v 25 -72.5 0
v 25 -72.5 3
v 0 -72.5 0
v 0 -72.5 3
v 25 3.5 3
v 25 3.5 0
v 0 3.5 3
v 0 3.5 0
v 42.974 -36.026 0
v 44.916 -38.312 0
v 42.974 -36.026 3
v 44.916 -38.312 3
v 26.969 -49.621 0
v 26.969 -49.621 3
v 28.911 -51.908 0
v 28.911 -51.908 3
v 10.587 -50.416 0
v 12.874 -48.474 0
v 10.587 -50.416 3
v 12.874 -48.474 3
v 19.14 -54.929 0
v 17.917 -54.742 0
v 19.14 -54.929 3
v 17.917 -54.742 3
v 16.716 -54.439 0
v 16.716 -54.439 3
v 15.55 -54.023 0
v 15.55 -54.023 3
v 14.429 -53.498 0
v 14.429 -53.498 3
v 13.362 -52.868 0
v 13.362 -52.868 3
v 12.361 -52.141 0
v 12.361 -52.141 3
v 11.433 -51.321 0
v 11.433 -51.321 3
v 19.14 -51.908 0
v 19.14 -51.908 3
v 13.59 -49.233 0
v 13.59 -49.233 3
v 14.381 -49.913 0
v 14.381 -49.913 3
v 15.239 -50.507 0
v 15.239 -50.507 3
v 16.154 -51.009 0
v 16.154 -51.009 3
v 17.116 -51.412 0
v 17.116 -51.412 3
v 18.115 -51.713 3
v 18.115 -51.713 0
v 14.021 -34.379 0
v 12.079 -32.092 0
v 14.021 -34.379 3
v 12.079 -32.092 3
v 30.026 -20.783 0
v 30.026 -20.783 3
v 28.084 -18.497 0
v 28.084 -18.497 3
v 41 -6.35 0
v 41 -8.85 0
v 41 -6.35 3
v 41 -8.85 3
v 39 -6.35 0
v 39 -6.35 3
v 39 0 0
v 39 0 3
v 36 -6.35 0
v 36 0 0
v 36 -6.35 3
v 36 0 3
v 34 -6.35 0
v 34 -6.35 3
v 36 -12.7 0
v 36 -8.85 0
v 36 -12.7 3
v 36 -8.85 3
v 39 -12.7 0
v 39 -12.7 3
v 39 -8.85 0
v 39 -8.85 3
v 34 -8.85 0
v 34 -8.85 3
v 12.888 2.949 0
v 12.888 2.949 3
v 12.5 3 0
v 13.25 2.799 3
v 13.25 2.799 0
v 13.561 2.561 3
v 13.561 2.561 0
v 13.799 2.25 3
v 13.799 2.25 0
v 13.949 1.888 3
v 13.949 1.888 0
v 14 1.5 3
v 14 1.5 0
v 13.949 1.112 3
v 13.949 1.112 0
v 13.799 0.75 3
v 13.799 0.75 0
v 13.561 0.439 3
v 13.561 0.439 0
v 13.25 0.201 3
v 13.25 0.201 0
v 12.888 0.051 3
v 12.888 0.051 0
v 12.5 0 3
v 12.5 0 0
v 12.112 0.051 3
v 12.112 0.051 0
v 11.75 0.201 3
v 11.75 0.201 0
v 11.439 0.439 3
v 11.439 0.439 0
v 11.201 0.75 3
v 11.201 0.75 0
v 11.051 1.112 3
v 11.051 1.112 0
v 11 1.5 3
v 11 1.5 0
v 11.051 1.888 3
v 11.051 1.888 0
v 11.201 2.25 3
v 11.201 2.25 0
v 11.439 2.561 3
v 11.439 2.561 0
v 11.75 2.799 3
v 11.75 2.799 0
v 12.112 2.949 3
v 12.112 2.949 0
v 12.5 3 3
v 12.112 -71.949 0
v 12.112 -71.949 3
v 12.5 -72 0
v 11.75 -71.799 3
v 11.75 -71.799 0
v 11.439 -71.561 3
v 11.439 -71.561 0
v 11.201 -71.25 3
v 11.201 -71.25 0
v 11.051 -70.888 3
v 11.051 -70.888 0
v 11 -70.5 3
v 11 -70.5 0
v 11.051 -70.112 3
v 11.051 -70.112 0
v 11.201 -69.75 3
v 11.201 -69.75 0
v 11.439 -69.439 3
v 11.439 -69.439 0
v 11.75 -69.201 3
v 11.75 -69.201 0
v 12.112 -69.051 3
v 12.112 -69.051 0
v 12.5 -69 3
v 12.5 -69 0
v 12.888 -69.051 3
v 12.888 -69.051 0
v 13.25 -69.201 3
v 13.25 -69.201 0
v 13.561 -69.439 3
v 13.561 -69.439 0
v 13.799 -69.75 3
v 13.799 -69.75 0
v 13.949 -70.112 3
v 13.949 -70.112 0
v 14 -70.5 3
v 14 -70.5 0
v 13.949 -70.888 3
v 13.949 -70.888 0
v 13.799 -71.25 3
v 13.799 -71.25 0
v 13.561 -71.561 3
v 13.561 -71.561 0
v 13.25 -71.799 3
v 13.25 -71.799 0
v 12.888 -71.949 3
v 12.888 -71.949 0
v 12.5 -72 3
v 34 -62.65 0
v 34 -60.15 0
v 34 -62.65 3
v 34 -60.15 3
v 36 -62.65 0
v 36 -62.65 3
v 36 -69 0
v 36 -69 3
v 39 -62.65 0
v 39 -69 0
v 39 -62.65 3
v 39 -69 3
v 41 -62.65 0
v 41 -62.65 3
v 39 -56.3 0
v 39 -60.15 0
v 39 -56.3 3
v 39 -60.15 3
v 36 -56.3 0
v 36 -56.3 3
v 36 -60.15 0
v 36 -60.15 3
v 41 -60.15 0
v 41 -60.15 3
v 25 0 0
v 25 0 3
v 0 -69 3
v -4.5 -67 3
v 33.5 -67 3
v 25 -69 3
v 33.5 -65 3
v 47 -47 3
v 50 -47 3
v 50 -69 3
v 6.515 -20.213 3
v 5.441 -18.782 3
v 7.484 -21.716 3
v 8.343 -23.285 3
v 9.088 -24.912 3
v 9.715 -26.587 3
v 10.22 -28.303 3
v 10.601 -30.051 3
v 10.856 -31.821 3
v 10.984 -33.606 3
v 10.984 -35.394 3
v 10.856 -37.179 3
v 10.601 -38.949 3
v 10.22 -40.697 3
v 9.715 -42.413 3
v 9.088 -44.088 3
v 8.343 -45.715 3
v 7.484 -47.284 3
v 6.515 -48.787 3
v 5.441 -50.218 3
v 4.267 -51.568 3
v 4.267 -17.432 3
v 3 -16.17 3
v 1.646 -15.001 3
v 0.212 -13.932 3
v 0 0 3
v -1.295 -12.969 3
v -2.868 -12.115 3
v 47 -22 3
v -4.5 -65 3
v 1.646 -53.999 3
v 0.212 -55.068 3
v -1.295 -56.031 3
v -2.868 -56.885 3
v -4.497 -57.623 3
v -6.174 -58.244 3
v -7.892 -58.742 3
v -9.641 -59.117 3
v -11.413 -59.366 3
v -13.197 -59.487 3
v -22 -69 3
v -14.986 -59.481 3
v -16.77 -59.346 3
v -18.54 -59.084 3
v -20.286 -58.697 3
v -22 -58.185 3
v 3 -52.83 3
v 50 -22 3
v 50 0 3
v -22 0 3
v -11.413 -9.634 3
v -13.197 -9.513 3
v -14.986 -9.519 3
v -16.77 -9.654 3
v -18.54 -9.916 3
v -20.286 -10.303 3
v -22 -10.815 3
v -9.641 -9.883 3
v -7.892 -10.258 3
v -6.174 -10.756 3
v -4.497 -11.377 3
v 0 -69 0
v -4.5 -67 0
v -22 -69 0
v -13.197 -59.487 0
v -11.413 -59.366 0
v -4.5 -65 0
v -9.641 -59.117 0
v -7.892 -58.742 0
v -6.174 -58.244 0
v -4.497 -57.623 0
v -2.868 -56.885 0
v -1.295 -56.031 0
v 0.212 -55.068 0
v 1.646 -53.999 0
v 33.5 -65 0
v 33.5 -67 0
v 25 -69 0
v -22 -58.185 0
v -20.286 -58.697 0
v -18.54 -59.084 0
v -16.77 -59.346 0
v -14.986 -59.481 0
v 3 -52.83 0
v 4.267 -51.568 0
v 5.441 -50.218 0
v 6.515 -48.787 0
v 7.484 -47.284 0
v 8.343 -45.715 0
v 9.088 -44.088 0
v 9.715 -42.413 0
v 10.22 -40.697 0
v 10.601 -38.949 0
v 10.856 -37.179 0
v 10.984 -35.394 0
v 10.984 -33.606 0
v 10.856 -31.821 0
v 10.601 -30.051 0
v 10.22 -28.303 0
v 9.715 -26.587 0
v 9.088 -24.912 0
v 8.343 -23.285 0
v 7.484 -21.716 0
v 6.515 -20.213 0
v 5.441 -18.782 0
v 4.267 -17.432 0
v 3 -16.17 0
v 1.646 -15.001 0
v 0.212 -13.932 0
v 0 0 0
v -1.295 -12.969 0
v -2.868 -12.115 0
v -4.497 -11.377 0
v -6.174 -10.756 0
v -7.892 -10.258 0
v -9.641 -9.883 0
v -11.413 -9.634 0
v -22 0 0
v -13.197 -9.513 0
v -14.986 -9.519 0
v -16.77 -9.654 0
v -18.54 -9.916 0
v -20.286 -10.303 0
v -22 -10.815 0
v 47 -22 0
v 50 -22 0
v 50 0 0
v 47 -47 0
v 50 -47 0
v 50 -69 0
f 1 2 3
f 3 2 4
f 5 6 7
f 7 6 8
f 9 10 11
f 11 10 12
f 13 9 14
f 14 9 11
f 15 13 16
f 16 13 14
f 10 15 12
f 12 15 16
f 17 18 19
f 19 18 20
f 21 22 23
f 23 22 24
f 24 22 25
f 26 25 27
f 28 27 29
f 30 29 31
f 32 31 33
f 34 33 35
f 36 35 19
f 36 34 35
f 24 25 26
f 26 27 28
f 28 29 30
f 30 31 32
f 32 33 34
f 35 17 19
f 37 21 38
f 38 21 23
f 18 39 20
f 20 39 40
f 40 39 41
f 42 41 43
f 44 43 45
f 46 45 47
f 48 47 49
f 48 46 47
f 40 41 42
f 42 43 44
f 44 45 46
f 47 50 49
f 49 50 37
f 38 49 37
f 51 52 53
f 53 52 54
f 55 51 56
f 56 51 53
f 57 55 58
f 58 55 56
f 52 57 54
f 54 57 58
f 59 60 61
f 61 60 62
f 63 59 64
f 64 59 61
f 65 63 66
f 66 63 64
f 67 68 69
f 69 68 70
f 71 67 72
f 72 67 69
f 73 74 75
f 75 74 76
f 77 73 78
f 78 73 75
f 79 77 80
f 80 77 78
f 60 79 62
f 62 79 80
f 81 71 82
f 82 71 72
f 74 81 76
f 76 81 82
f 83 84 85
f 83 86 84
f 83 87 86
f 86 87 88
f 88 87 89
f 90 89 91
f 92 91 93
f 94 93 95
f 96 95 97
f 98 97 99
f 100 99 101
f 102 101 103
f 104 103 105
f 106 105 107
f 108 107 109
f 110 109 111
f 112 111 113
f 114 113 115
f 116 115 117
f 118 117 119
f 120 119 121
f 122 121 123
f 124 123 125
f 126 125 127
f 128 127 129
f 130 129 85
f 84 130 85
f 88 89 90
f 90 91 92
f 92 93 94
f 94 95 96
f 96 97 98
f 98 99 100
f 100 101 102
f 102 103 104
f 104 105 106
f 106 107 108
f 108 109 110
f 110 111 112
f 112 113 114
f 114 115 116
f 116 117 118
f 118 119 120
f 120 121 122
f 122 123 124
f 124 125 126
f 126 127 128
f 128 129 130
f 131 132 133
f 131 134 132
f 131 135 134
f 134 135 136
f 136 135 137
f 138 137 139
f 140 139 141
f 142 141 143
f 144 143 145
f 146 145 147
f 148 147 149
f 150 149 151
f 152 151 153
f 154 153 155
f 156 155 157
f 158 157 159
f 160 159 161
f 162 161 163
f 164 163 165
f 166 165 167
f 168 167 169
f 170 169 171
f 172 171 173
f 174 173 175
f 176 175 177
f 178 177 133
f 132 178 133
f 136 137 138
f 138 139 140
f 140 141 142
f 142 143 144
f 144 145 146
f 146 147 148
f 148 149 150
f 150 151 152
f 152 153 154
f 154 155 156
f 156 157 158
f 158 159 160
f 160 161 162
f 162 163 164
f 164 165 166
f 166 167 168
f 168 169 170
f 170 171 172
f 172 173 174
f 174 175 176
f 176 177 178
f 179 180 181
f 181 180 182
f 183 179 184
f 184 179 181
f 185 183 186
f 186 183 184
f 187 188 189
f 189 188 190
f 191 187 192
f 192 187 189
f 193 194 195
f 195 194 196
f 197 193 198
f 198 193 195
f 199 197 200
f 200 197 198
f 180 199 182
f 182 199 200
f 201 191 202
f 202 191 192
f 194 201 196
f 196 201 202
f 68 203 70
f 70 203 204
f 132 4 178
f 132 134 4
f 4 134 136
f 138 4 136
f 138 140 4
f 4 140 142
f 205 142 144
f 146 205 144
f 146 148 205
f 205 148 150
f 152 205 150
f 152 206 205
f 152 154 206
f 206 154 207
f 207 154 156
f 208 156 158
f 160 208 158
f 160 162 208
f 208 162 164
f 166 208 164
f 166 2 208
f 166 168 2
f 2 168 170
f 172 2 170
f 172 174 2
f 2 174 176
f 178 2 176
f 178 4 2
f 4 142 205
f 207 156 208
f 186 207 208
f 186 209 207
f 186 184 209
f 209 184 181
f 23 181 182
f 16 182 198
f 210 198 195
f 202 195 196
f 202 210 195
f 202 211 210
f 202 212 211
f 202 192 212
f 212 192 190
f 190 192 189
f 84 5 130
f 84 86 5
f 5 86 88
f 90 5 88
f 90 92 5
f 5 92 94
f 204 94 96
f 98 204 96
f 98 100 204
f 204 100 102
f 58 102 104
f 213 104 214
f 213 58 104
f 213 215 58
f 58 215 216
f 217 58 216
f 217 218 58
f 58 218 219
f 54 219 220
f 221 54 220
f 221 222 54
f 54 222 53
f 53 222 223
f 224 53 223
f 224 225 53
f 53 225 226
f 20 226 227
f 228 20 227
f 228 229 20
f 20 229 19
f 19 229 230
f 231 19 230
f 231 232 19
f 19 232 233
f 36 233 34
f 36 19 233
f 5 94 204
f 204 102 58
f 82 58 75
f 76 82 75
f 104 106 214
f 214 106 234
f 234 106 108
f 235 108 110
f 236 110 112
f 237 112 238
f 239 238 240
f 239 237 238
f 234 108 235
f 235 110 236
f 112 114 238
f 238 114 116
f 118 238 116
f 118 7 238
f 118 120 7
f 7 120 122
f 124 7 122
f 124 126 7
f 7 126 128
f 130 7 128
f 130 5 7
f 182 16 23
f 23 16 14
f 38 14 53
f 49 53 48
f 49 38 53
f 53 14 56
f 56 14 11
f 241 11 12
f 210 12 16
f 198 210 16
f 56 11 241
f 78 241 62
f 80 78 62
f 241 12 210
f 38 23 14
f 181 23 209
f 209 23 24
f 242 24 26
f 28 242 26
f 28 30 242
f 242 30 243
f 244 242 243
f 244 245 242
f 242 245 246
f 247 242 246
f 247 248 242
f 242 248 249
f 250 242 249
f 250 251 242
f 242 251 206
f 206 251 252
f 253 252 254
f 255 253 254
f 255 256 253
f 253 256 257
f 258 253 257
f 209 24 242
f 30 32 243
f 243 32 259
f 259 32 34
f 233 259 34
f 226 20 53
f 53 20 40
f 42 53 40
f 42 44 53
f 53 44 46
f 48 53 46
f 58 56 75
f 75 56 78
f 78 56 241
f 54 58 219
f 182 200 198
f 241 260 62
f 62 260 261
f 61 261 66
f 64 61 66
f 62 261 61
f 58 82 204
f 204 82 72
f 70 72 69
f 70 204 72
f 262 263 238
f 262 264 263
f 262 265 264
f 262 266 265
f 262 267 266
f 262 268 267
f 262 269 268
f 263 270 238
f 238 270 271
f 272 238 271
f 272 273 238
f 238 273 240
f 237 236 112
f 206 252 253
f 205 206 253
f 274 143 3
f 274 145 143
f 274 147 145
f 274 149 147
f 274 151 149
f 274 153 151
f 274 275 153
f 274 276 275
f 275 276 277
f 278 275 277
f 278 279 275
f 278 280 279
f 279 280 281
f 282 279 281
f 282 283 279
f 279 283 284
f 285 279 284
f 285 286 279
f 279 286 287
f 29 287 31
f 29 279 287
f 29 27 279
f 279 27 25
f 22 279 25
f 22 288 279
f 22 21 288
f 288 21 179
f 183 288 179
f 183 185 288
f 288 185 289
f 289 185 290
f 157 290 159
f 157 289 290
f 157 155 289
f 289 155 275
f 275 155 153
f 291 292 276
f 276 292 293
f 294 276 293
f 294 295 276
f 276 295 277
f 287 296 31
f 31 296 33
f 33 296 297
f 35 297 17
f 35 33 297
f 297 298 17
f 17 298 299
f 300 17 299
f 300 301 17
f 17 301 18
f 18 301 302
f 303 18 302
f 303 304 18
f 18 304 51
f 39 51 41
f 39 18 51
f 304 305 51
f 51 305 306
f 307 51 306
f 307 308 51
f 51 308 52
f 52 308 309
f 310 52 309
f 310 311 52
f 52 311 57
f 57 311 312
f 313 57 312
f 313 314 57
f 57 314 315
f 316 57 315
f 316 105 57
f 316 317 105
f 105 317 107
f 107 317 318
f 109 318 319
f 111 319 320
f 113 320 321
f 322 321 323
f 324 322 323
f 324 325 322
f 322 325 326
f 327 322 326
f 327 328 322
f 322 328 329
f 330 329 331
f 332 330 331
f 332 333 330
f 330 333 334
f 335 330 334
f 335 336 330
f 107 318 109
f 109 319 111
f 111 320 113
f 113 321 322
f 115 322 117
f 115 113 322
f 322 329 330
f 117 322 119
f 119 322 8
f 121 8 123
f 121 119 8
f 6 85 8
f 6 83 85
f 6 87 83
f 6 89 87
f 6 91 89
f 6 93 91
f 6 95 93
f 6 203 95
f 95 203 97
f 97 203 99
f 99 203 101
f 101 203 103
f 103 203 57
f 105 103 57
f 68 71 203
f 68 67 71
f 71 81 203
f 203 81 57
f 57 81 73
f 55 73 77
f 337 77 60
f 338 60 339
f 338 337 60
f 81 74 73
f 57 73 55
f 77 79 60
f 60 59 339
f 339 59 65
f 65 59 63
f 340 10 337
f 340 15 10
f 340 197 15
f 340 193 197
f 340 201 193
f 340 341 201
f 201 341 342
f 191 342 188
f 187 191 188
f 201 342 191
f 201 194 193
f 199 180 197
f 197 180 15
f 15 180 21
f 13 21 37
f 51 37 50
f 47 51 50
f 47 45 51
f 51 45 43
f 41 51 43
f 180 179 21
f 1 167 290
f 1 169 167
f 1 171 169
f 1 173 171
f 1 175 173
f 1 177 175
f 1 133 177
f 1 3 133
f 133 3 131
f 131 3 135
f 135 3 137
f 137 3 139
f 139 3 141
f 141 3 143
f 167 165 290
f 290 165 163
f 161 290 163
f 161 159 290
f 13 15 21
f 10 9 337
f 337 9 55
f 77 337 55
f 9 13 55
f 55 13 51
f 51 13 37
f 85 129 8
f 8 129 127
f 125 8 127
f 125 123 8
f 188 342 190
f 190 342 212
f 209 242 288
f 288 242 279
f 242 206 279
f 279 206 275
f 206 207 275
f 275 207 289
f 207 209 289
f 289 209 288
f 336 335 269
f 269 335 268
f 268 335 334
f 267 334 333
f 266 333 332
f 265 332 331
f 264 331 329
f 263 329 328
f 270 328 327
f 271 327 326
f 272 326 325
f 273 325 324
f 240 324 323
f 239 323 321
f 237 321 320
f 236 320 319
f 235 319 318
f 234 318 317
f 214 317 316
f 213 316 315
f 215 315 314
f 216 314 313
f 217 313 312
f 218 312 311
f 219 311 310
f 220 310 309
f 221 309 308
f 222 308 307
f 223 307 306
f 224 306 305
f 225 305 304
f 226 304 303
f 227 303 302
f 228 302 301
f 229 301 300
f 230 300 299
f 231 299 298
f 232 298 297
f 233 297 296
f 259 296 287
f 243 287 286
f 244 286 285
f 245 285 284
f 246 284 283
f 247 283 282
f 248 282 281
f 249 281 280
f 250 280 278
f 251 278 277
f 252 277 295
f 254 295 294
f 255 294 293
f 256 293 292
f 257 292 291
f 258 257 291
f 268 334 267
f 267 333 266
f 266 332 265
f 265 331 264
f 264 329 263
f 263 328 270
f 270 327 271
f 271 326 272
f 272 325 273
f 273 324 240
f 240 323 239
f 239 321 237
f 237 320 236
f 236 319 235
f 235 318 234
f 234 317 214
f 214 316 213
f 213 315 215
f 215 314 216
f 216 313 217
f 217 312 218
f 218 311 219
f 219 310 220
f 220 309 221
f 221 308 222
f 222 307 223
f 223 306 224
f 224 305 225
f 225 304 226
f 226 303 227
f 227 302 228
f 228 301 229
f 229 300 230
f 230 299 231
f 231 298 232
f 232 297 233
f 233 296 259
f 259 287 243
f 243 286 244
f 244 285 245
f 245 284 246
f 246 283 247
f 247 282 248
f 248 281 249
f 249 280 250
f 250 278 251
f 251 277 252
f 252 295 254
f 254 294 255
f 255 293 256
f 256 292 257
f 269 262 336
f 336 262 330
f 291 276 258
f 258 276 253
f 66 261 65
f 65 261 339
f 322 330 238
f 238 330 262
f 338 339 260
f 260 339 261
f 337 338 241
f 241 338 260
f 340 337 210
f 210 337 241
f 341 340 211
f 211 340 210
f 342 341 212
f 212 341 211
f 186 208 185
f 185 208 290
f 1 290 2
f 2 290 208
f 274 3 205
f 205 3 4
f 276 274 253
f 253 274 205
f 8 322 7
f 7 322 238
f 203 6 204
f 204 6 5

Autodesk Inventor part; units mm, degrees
ref_plane "YZ Plane" through (0, 0, 0) normal (1, 0, 0) x (0, 1, 0)
ref_plane "XZ Plane" through (0, 0, 0) normal (0, 1, 0) x (-1, 0, 0)
ref_plane "XY Plane" through (0, 0, 0) normal (0, 0, 1) x (1, 0, 0)
sketch "Sketch1" plane through (0, 0, 0) normal (0, 0, 1) x (1, 0, 0)
  line L0 (0, 0) -> (25, 0) projected
  line L1 (25, 0) -> (25, 3) projected
  line L2 (0, 3) -> (25, 3) projected
  line L3 (0, 0) -> (0, 3) projected
  line L4 (0.2071, -72) -> (11, -72) projected
  line L5 (0.2071, -69) -> (11, -69) projected
  line L6 (25, -69) -> (50, -69) projected
  line L7 (25, 0) -> (50, 0) projected
  line L8 (-25, 0) -> (0, 0) projected
  line L9 (-22, 0) -> (-22, -10.8146) projected
  line L10 (-25, -22) -> (-25, -47) projected
  line L11 (-25, -47) -> (-22, -47) projected
  line L12 (-22, -10.8146) -> (-22, -58.1854) projected
  line L13 (-25, -22) -> (-22, -22) projected
  line L14 (-22, -58.1854) -> (-22, -69) projected
  line L15 (-25, -69) -> (0, -69) projected
  line L16 (50, 0) -> (50, -22)
  line L17 (50, -22) -> (47, -22)
  line L18 (47, -22) -> (47, -47)
  line L19 (47, -47) -> (50, -47)
  line L20 (50, -47) -> (50, -69)
  line L21 (50, 0) -> (25, 0)
  line L22 (25, 3) -> (25, 0)
  line L23 (25, 3) -> (0, 3)
  line L24 (0, 3) -> (0, 0)
  line L25 (-22, -10.8146) -> (-22, 0)
  line L26 (-22, 0) -> (0, 0)
  line L27 (-22, -22) -> (-25, -22)
  line L28 (-25, -22) -> (-25, -47)
  line L29 (-22, -47) -> (-25, -47)
  line L30 (-22, -58.1854) -> (-22, -69)
  line L31 (-22, -69) -> (0, -69)
  line L32 (0, -72) -> (0, -69)
  line L33 (0, -72) -> (25, -72)
  line L34 (25, -72) -> (25, -69)
  line L35 (25, -69) -> (50, -69)
  line L36 (11, -72) -> (11, -69) projected
  line L37 (0.2071, -69) -> (0.2071, -72) projected
  dimension "d0" = 3
extrude "Extrusion1" add sketch "Sketch1" along normal blind 3
sketch "Sketch2" plane through (0, 0, 3) normal (0, 0, 1) x (1, 0, 0)
  line L0 (-25, -22) -> (-25, -47) projected
  line L1 (-25, -34.5) -> (7, -34.5)
  line L2 (-25, -34.5) -> (-14, -34.5)
  circle A0 centre (-14, -34.5) radius 21
  circle A1 centre (-14, -34.5) radius 25
  point P0 (0, 0)
  dimension "d3" = 32
  dimension "d4" = 11
  dimension "d5" = 4
extrude "Extrusion2" cut sketch "Sketch2" against normal blind 20 contours A0 | A1
sketch "Sketch3" plane through (0, 0, 3) normal (0, 0, 1) x (1, 0, 0)
  line L0 (-1.2929, -65) -> (30.2929, -65) projected
  line L1 (-4.5, -67) -> (-4.5, -65) projected
  line L2 (33.5, -67) -> (33.5, -65) projected
  line L3 (30.6464, -65) -> (33.5, -65) projected
  line L4 (30.6464, -65) -> (30.2929, -65) projected
  line L5 (30.2929, -67) -> (30.6464, -67) projected
  line L6 (33.5, -67) -> (30.6464, -67) projected
  line L7 (30.2929, -67) -> (-1.2929, -67) projected
  arc A0 (-22, -58.1854) -> (-22, -10.8146) centre (-14, -34.5) ccw projected
  line L8 (-22, -58.1854) -> (-22, -69) projected
  line L9 (-22, -69) -> (0, -69) projected
  line L10 (0, -69) -> (0, -72) projected
  line L11 (50, -69) -> (50, -47) projected
  line L12 (50, -47) -> (47, -47) projected
  line L13 (47, -47) -> (47, -22) projected
  line L14 (47, -22) -> (50, -22) projected
  line L15 (50, -22) -> (50, 0) projected
  line L16 (50, 0) -> (25, 0) projected
  line L17 (25, 0) -> (25, 3) projected
  line L18 (25, 3) -> (0, 3) projected
  line L19 (0, 3) -> (0, 0) projected
  line L20 (0, 0) -> (-22, 0) projected
  line L21 (-22, 0) -> (-22, -10.8146) projected
  line L22 (-4.5, -65) -> (-1.6464, -65) projected
  line L23 (-1.2929, -65) -> (-1.6464, -65) projected
  line L24 (-1.6464, -67) -> (-4.5, -67) projected
  line L25 (-1.6464, -67) -> (-1.2929, -67) projected
  line L26 (0, -72) -> (25, -72) projected
  line L27 (25, -69) -> (50, -69) projected
  line L28 (25, -72) -> (25, -69) projected
extrude "Extrusion3" cut sketch "Sketch3" against normal blind 3 contours L0 L4 L3 L2 L6 L5 L7 L25 L24 L1 L22 L23
sketch "Sketch4" plane through (0, 0, 3) normal (0, 0, 1) x (1, 0, 0)
  line L0 (47, -47) -> (47, -22) projected
  line L1 (47, -34.5) -> (34.3, -34.5)
  line L2 (34.3, -34.5) -> (34.3, -36)
  line L3 (34.3, -36) -> (34.3, -33)
  line L4 (34.3, -33) -> (47, -33)
  line L5 (47, -33) -> (47, -36)
  line L6 (47, -36) -> (34.3, -36)
  line L7 (40.65, -36) -> (40.65, -38)
  line L8 (40.65, -38) -> (38.15, -38)
  line L9 (38.15, -38) -> (38.15, -31)
  line L10 (38.15, -31) -> (40.65, -31)
  line L11 (40.65, -31) -> (40.65, -36)
  line L12 (25, 3) -> (0, 3) projected
  line L13 (50, 0) -> (25, 0) projected
  line L14 (0, 0) -> (-22, 0) projected
  line L15 (25, -69) -> (50, -69) projected
  line L16 (0, -72) -> (25, -72) projected
  line L17 (-22, -69) -> (0, -69) projected
  line L18 (50, 0) -> (25, 0) projected
  line L19 (37.5, 0) -> (37.5, -12.7)
  line L20 (37.5, -12.7) -> (39, -12.7)
  line L21 (39, -12.7) -> (36, -12.7)
  line L22 (36, -12.7) -> (36, 0)
  line L23 (39, 0) -> (39, -12.7)
  line L24 (36, -6.35) -> (34, -6.35)
  line L25 (34, -6.35) -> (34, -8.85)
  line L26 (34, -8.85) -> (41, -8.85)
  line L27 (41, -8.85) -> (41, -6.35)
  line L28 (41, -6.35) -> (36, -6.35)
  line L29 (50, -69) -> (25, -69)
  line L30 (37.5, -69) -> (37.5, -56.3)
  line L31 (37.5, -56.3) -> (39, -56.3)
  line L32 (39, -56.3) -> (36, -56.3)
  line L33 (36, -56.3) -> (36, -69)
  line L34 (39, -69) -> (39, -56.3)
  line L35 (36, -62.65) -> (34, -62.65)
  line L36 (34, -62.65) -> (34, -60.15)
  line L37 (34, -60.15) -> (41, -60.15)
  line L38 (41, -60.15) -> (41, -62.65)
  line L39 (41, -62.65) -> (36, -62.65)
  line L40 (-4.5, -65) -> (33.5, -65) projected
  line L41 (33.5, -65) -> (33.5, -67) projected
  line L42 (33.5, -67) -> (-4.5, -67) projected
  line L43 (-4.5, -67) -> (-4.5, -65) projected
  arc A0 (-22, -58.1854) -> (-22, -10.8146) centre (-14, -34.5) ccw projected
  line L44 (-22, -58.1854) -> (-22, -69) projected
  line L45 (-22, -69) -> (0, -69) projected
  line L46 (0, -69) -> (0, -72) projected
  line L47 (0, -72) -> (25, -72) projected
  line L48 (25, -69) -> (50, -69) projected
  line L49 (50, -69) -> (50, -47) projected
  line L50 (50, -47) -> (47, -47) projected
  line L51 (47, -47) -> (47, -22) projected
  line L52 (47, -22) -> (50, -22) projected
  line L53 (50, -22) -> (50, 0) projected
  line L54 (50, 0) -> (25, 0) projected
  line L55 (25, 0) -> (25, 3) projected
  line L56 (25, 3) -> (0, 3) projected
  line L57 (0, 3) -> (0, 0) projected
  line L58 (0, 0) -> (-22, 0) projected
  line L59 (-22, 0) -> (-22, -10.8146) projected
  circle A1 centre (12.5, 1.5) radius 1.5
  line L60 (39, -56.3) -> (36, -56.3)
  line L61 (36, -56.3) -> (36, -69)
  line L62 (36, -69) -> (39, -69)
  line L63 (39, -69) -> (39, -56.3)
  circle A2 centre (12.5, -70.5) radius 1.5
  line L64 (25, -72) -> (25, -69) projected
  arc A3 (42.9741, -36.0257) -> (30.0259, -20.7829) centre (36.5, -28.4043) ccw projected
  line L65 (26.9692, -49.6214) -> (42.9741, -36.0257) projected
  arc A4 (14.0209, -34.3786) -> (26.9692, -49.6214) centre (20.4951, -42) ccw projected
  line L66 (30.0259, -20.7829) -> (14.0209, -34.3786) projected
  dimension "d10" = 12.7
  dimension "d11" = 1.5
  dimension "d12" = 3
  dimension "d13" = 2
  dimension "d14" = 2.5
  dimension "d15" = 7
  dimension "d16" = 12.7
  dimension "d17" = 1.5
  dimension "d18" = 3
  dimension "d19" = 2
  dimension "d20" = 2.5
  dimension "d21" = 7
  dimension "d22" = 3
  dimension "d25" = 3
extrude "Extrusion4" cut sketch "Sketch4" against normal blind 25.4 contours A1 | A2 | L15 L30 L39 L34 | L15 L33 L39 L30 | L39 L30 L37 L34 | L34 L37 L38 L39 | L39 L33 L37 L30 | L37 L30 L31 L34 | L35 L36 L37 L33 | L37 L33 L32 L30 | L23 L28 L19 L13 | L19 L28 L22 L13 | L28 L27 L26 L23 | L23 L26 L19 L28 | L19 L26 L22 L28 | L23 L20 L19 L26 | L22 L26 L25 L24 | L19 L21 L22 L26
sketch "Sketch5" plane through (0, 0, 3) normal (0, 0, 1) x (1, 0, 0)
  line L0 (26.9692, -49.6214) -> (42.9741, -36.0257)
  line L1 (44.9164, -38.3121) -> (28.9114, -51.9078)
  line L2 (42.9741, -36.0257) -> (44.9164, -38.3121)
  line L3 (28.9114, -51.9078) -> (26.9692, -49.6214)
  line L4 (30.0259, -20.7829) -> (14.0209, -34.3786)
  line L5 (12.0787, -32.0922) -> (28.0836, -18.4965)
  line L6 (28.0836, -18.4965) -> (30.0259, -20.7829)
  line L7 (14.0209, -34.3786) -> (12.0787, -32.0922)
  arc A0 (10.5873, -50.4164) -> (19.1404, -54.9292) centre (20.4951, -42) ccw
  line L8 (10.5873, -50.4164) -> (12.8737, -48.4741)
  arc A1 (12.8737, -48.4741) -> (19.1404, -51.9078) centre (20.4951, -42) ccw
  line L9 (19.1404, -51.9078) -> (19.1404, -54.9292)
  point P0 (0, 0)
extrude "Extrusion5" cut sketch "Sketch5" against normal blind 25.4
sketch "Sketch6" plane through (0, 3, 3) normal (0, 1, 0) x (1, 0, 0)
  line L0 (12.5, 0) -> (12.5, 3) projected
  line L1 (12.5, 3) -> (0, 3) projected
  line L2 (0, 3) -> (0, 0) projected
  line L3 (12.5, 0) -> (0, 0) projected
  line L4 (25, 0) -> (12.5, 0) projected
  line L5 (25, 3) -> (25, 0) projected
  line L6 (25, 3) -> (12.5, 3) projected
  point P0 (0, 3)
extrude "Extrusion6" add sketch "Sketch6" along normal blind 0.5
sketch "Sketch7" plane through (0, -72, 0) normal (0, -1, 0) x (1, 0, 0)
  line L0 (12.5, 3) -> (12.5, 0) projected
  line L1 (0, 3) -> (12.5, 3) projected
  line L2 (0, 0) -> (0, 3) projected
  line L3 (0, 0) -> (12.5, 0) projected
  line L4 (12.5, 0) -> (25, 0) projected
  line L5 (25, 0) -> (25, 3) projected
  line L6 (12.5, 3) -> (25, 3) projected
extrude "Extrusion7" add sketch "Sketch7" along normal blind 0.5
properties part number "pared frontal 2"
